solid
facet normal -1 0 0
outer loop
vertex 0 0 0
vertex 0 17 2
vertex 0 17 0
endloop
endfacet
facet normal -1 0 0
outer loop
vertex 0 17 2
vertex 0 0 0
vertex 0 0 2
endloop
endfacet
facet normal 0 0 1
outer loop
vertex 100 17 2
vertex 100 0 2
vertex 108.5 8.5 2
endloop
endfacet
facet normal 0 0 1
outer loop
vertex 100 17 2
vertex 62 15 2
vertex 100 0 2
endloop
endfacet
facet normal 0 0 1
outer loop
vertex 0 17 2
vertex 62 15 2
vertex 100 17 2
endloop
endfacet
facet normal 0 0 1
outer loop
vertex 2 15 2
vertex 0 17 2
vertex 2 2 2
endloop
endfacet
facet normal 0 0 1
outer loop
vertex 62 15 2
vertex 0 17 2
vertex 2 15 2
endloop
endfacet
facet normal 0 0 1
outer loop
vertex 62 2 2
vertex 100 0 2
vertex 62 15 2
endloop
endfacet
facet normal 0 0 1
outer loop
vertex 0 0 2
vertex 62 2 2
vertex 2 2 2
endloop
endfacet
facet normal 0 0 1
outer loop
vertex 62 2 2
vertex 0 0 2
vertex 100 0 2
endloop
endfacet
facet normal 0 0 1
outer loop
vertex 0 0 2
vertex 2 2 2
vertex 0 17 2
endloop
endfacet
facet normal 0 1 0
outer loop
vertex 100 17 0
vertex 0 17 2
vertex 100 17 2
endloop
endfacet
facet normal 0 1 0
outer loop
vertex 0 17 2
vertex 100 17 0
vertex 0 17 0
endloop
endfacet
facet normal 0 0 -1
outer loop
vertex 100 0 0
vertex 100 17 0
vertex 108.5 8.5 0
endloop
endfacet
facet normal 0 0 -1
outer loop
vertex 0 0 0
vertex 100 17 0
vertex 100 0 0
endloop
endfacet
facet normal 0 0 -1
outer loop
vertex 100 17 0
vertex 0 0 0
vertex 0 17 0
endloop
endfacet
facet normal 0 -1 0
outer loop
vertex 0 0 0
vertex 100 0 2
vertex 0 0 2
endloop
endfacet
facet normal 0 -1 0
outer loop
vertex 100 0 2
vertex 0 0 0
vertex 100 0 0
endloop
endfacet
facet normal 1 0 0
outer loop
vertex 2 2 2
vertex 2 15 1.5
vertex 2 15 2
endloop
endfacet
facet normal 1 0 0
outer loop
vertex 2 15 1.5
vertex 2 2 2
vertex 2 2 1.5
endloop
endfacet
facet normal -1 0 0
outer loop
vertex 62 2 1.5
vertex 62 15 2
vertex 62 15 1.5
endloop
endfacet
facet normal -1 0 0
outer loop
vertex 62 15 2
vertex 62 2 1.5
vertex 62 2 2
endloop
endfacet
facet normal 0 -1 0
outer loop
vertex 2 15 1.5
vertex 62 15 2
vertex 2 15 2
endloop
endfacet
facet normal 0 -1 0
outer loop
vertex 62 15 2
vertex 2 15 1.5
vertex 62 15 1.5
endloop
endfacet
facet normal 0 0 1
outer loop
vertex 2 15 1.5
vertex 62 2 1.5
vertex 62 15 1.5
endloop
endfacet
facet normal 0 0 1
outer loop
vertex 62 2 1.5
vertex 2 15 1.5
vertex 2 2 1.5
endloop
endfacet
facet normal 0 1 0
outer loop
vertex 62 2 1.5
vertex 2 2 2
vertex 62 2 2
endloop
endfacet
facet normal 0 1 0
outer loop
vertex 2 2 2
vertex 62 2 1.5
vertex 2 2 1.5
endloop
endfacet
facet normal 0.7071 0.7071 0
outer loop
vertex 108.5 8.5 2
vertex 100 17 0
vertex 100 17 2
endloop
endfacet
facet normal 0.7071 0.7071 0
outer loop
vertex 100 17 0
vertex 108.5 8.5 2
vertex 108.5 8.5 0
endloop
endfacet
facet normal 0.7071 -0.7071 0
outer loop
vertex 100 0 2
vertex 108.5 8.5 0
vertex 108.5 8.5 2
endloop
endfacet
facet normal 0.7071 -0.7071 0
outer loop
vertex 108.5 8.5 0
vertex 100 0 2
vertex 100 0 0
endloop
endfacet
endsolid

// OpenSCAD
/* Plant Identification Stakes */

/* [Stake] */
stakeLength = 100;
stakeWidth = 17;
stakeHeight = 2;

/* [Label Inset] */
labelDepth = 0.5;
labelBorder = 2;

labelLength = stakeLength / 5 * 3;
pointDim = stakeWidth / sqrt(2);

union() {
  difference() {
    // stake shaft
    cube([stakeLength, stakeWidth, stakeHeight]);
    
    // label inset
    translate([ labelBorder, labelBorder, stakeHeight-labelDepth ])
    cube([labelLength, stakeWidth - labelBorder*2, labelDepth+1]);
  }

  // stake point
  translate([ stakeLength, 0, 0 ])
  rotate([0, 0, 45])
  cube([pointDim, pointDim, stakeHeight]);
}
